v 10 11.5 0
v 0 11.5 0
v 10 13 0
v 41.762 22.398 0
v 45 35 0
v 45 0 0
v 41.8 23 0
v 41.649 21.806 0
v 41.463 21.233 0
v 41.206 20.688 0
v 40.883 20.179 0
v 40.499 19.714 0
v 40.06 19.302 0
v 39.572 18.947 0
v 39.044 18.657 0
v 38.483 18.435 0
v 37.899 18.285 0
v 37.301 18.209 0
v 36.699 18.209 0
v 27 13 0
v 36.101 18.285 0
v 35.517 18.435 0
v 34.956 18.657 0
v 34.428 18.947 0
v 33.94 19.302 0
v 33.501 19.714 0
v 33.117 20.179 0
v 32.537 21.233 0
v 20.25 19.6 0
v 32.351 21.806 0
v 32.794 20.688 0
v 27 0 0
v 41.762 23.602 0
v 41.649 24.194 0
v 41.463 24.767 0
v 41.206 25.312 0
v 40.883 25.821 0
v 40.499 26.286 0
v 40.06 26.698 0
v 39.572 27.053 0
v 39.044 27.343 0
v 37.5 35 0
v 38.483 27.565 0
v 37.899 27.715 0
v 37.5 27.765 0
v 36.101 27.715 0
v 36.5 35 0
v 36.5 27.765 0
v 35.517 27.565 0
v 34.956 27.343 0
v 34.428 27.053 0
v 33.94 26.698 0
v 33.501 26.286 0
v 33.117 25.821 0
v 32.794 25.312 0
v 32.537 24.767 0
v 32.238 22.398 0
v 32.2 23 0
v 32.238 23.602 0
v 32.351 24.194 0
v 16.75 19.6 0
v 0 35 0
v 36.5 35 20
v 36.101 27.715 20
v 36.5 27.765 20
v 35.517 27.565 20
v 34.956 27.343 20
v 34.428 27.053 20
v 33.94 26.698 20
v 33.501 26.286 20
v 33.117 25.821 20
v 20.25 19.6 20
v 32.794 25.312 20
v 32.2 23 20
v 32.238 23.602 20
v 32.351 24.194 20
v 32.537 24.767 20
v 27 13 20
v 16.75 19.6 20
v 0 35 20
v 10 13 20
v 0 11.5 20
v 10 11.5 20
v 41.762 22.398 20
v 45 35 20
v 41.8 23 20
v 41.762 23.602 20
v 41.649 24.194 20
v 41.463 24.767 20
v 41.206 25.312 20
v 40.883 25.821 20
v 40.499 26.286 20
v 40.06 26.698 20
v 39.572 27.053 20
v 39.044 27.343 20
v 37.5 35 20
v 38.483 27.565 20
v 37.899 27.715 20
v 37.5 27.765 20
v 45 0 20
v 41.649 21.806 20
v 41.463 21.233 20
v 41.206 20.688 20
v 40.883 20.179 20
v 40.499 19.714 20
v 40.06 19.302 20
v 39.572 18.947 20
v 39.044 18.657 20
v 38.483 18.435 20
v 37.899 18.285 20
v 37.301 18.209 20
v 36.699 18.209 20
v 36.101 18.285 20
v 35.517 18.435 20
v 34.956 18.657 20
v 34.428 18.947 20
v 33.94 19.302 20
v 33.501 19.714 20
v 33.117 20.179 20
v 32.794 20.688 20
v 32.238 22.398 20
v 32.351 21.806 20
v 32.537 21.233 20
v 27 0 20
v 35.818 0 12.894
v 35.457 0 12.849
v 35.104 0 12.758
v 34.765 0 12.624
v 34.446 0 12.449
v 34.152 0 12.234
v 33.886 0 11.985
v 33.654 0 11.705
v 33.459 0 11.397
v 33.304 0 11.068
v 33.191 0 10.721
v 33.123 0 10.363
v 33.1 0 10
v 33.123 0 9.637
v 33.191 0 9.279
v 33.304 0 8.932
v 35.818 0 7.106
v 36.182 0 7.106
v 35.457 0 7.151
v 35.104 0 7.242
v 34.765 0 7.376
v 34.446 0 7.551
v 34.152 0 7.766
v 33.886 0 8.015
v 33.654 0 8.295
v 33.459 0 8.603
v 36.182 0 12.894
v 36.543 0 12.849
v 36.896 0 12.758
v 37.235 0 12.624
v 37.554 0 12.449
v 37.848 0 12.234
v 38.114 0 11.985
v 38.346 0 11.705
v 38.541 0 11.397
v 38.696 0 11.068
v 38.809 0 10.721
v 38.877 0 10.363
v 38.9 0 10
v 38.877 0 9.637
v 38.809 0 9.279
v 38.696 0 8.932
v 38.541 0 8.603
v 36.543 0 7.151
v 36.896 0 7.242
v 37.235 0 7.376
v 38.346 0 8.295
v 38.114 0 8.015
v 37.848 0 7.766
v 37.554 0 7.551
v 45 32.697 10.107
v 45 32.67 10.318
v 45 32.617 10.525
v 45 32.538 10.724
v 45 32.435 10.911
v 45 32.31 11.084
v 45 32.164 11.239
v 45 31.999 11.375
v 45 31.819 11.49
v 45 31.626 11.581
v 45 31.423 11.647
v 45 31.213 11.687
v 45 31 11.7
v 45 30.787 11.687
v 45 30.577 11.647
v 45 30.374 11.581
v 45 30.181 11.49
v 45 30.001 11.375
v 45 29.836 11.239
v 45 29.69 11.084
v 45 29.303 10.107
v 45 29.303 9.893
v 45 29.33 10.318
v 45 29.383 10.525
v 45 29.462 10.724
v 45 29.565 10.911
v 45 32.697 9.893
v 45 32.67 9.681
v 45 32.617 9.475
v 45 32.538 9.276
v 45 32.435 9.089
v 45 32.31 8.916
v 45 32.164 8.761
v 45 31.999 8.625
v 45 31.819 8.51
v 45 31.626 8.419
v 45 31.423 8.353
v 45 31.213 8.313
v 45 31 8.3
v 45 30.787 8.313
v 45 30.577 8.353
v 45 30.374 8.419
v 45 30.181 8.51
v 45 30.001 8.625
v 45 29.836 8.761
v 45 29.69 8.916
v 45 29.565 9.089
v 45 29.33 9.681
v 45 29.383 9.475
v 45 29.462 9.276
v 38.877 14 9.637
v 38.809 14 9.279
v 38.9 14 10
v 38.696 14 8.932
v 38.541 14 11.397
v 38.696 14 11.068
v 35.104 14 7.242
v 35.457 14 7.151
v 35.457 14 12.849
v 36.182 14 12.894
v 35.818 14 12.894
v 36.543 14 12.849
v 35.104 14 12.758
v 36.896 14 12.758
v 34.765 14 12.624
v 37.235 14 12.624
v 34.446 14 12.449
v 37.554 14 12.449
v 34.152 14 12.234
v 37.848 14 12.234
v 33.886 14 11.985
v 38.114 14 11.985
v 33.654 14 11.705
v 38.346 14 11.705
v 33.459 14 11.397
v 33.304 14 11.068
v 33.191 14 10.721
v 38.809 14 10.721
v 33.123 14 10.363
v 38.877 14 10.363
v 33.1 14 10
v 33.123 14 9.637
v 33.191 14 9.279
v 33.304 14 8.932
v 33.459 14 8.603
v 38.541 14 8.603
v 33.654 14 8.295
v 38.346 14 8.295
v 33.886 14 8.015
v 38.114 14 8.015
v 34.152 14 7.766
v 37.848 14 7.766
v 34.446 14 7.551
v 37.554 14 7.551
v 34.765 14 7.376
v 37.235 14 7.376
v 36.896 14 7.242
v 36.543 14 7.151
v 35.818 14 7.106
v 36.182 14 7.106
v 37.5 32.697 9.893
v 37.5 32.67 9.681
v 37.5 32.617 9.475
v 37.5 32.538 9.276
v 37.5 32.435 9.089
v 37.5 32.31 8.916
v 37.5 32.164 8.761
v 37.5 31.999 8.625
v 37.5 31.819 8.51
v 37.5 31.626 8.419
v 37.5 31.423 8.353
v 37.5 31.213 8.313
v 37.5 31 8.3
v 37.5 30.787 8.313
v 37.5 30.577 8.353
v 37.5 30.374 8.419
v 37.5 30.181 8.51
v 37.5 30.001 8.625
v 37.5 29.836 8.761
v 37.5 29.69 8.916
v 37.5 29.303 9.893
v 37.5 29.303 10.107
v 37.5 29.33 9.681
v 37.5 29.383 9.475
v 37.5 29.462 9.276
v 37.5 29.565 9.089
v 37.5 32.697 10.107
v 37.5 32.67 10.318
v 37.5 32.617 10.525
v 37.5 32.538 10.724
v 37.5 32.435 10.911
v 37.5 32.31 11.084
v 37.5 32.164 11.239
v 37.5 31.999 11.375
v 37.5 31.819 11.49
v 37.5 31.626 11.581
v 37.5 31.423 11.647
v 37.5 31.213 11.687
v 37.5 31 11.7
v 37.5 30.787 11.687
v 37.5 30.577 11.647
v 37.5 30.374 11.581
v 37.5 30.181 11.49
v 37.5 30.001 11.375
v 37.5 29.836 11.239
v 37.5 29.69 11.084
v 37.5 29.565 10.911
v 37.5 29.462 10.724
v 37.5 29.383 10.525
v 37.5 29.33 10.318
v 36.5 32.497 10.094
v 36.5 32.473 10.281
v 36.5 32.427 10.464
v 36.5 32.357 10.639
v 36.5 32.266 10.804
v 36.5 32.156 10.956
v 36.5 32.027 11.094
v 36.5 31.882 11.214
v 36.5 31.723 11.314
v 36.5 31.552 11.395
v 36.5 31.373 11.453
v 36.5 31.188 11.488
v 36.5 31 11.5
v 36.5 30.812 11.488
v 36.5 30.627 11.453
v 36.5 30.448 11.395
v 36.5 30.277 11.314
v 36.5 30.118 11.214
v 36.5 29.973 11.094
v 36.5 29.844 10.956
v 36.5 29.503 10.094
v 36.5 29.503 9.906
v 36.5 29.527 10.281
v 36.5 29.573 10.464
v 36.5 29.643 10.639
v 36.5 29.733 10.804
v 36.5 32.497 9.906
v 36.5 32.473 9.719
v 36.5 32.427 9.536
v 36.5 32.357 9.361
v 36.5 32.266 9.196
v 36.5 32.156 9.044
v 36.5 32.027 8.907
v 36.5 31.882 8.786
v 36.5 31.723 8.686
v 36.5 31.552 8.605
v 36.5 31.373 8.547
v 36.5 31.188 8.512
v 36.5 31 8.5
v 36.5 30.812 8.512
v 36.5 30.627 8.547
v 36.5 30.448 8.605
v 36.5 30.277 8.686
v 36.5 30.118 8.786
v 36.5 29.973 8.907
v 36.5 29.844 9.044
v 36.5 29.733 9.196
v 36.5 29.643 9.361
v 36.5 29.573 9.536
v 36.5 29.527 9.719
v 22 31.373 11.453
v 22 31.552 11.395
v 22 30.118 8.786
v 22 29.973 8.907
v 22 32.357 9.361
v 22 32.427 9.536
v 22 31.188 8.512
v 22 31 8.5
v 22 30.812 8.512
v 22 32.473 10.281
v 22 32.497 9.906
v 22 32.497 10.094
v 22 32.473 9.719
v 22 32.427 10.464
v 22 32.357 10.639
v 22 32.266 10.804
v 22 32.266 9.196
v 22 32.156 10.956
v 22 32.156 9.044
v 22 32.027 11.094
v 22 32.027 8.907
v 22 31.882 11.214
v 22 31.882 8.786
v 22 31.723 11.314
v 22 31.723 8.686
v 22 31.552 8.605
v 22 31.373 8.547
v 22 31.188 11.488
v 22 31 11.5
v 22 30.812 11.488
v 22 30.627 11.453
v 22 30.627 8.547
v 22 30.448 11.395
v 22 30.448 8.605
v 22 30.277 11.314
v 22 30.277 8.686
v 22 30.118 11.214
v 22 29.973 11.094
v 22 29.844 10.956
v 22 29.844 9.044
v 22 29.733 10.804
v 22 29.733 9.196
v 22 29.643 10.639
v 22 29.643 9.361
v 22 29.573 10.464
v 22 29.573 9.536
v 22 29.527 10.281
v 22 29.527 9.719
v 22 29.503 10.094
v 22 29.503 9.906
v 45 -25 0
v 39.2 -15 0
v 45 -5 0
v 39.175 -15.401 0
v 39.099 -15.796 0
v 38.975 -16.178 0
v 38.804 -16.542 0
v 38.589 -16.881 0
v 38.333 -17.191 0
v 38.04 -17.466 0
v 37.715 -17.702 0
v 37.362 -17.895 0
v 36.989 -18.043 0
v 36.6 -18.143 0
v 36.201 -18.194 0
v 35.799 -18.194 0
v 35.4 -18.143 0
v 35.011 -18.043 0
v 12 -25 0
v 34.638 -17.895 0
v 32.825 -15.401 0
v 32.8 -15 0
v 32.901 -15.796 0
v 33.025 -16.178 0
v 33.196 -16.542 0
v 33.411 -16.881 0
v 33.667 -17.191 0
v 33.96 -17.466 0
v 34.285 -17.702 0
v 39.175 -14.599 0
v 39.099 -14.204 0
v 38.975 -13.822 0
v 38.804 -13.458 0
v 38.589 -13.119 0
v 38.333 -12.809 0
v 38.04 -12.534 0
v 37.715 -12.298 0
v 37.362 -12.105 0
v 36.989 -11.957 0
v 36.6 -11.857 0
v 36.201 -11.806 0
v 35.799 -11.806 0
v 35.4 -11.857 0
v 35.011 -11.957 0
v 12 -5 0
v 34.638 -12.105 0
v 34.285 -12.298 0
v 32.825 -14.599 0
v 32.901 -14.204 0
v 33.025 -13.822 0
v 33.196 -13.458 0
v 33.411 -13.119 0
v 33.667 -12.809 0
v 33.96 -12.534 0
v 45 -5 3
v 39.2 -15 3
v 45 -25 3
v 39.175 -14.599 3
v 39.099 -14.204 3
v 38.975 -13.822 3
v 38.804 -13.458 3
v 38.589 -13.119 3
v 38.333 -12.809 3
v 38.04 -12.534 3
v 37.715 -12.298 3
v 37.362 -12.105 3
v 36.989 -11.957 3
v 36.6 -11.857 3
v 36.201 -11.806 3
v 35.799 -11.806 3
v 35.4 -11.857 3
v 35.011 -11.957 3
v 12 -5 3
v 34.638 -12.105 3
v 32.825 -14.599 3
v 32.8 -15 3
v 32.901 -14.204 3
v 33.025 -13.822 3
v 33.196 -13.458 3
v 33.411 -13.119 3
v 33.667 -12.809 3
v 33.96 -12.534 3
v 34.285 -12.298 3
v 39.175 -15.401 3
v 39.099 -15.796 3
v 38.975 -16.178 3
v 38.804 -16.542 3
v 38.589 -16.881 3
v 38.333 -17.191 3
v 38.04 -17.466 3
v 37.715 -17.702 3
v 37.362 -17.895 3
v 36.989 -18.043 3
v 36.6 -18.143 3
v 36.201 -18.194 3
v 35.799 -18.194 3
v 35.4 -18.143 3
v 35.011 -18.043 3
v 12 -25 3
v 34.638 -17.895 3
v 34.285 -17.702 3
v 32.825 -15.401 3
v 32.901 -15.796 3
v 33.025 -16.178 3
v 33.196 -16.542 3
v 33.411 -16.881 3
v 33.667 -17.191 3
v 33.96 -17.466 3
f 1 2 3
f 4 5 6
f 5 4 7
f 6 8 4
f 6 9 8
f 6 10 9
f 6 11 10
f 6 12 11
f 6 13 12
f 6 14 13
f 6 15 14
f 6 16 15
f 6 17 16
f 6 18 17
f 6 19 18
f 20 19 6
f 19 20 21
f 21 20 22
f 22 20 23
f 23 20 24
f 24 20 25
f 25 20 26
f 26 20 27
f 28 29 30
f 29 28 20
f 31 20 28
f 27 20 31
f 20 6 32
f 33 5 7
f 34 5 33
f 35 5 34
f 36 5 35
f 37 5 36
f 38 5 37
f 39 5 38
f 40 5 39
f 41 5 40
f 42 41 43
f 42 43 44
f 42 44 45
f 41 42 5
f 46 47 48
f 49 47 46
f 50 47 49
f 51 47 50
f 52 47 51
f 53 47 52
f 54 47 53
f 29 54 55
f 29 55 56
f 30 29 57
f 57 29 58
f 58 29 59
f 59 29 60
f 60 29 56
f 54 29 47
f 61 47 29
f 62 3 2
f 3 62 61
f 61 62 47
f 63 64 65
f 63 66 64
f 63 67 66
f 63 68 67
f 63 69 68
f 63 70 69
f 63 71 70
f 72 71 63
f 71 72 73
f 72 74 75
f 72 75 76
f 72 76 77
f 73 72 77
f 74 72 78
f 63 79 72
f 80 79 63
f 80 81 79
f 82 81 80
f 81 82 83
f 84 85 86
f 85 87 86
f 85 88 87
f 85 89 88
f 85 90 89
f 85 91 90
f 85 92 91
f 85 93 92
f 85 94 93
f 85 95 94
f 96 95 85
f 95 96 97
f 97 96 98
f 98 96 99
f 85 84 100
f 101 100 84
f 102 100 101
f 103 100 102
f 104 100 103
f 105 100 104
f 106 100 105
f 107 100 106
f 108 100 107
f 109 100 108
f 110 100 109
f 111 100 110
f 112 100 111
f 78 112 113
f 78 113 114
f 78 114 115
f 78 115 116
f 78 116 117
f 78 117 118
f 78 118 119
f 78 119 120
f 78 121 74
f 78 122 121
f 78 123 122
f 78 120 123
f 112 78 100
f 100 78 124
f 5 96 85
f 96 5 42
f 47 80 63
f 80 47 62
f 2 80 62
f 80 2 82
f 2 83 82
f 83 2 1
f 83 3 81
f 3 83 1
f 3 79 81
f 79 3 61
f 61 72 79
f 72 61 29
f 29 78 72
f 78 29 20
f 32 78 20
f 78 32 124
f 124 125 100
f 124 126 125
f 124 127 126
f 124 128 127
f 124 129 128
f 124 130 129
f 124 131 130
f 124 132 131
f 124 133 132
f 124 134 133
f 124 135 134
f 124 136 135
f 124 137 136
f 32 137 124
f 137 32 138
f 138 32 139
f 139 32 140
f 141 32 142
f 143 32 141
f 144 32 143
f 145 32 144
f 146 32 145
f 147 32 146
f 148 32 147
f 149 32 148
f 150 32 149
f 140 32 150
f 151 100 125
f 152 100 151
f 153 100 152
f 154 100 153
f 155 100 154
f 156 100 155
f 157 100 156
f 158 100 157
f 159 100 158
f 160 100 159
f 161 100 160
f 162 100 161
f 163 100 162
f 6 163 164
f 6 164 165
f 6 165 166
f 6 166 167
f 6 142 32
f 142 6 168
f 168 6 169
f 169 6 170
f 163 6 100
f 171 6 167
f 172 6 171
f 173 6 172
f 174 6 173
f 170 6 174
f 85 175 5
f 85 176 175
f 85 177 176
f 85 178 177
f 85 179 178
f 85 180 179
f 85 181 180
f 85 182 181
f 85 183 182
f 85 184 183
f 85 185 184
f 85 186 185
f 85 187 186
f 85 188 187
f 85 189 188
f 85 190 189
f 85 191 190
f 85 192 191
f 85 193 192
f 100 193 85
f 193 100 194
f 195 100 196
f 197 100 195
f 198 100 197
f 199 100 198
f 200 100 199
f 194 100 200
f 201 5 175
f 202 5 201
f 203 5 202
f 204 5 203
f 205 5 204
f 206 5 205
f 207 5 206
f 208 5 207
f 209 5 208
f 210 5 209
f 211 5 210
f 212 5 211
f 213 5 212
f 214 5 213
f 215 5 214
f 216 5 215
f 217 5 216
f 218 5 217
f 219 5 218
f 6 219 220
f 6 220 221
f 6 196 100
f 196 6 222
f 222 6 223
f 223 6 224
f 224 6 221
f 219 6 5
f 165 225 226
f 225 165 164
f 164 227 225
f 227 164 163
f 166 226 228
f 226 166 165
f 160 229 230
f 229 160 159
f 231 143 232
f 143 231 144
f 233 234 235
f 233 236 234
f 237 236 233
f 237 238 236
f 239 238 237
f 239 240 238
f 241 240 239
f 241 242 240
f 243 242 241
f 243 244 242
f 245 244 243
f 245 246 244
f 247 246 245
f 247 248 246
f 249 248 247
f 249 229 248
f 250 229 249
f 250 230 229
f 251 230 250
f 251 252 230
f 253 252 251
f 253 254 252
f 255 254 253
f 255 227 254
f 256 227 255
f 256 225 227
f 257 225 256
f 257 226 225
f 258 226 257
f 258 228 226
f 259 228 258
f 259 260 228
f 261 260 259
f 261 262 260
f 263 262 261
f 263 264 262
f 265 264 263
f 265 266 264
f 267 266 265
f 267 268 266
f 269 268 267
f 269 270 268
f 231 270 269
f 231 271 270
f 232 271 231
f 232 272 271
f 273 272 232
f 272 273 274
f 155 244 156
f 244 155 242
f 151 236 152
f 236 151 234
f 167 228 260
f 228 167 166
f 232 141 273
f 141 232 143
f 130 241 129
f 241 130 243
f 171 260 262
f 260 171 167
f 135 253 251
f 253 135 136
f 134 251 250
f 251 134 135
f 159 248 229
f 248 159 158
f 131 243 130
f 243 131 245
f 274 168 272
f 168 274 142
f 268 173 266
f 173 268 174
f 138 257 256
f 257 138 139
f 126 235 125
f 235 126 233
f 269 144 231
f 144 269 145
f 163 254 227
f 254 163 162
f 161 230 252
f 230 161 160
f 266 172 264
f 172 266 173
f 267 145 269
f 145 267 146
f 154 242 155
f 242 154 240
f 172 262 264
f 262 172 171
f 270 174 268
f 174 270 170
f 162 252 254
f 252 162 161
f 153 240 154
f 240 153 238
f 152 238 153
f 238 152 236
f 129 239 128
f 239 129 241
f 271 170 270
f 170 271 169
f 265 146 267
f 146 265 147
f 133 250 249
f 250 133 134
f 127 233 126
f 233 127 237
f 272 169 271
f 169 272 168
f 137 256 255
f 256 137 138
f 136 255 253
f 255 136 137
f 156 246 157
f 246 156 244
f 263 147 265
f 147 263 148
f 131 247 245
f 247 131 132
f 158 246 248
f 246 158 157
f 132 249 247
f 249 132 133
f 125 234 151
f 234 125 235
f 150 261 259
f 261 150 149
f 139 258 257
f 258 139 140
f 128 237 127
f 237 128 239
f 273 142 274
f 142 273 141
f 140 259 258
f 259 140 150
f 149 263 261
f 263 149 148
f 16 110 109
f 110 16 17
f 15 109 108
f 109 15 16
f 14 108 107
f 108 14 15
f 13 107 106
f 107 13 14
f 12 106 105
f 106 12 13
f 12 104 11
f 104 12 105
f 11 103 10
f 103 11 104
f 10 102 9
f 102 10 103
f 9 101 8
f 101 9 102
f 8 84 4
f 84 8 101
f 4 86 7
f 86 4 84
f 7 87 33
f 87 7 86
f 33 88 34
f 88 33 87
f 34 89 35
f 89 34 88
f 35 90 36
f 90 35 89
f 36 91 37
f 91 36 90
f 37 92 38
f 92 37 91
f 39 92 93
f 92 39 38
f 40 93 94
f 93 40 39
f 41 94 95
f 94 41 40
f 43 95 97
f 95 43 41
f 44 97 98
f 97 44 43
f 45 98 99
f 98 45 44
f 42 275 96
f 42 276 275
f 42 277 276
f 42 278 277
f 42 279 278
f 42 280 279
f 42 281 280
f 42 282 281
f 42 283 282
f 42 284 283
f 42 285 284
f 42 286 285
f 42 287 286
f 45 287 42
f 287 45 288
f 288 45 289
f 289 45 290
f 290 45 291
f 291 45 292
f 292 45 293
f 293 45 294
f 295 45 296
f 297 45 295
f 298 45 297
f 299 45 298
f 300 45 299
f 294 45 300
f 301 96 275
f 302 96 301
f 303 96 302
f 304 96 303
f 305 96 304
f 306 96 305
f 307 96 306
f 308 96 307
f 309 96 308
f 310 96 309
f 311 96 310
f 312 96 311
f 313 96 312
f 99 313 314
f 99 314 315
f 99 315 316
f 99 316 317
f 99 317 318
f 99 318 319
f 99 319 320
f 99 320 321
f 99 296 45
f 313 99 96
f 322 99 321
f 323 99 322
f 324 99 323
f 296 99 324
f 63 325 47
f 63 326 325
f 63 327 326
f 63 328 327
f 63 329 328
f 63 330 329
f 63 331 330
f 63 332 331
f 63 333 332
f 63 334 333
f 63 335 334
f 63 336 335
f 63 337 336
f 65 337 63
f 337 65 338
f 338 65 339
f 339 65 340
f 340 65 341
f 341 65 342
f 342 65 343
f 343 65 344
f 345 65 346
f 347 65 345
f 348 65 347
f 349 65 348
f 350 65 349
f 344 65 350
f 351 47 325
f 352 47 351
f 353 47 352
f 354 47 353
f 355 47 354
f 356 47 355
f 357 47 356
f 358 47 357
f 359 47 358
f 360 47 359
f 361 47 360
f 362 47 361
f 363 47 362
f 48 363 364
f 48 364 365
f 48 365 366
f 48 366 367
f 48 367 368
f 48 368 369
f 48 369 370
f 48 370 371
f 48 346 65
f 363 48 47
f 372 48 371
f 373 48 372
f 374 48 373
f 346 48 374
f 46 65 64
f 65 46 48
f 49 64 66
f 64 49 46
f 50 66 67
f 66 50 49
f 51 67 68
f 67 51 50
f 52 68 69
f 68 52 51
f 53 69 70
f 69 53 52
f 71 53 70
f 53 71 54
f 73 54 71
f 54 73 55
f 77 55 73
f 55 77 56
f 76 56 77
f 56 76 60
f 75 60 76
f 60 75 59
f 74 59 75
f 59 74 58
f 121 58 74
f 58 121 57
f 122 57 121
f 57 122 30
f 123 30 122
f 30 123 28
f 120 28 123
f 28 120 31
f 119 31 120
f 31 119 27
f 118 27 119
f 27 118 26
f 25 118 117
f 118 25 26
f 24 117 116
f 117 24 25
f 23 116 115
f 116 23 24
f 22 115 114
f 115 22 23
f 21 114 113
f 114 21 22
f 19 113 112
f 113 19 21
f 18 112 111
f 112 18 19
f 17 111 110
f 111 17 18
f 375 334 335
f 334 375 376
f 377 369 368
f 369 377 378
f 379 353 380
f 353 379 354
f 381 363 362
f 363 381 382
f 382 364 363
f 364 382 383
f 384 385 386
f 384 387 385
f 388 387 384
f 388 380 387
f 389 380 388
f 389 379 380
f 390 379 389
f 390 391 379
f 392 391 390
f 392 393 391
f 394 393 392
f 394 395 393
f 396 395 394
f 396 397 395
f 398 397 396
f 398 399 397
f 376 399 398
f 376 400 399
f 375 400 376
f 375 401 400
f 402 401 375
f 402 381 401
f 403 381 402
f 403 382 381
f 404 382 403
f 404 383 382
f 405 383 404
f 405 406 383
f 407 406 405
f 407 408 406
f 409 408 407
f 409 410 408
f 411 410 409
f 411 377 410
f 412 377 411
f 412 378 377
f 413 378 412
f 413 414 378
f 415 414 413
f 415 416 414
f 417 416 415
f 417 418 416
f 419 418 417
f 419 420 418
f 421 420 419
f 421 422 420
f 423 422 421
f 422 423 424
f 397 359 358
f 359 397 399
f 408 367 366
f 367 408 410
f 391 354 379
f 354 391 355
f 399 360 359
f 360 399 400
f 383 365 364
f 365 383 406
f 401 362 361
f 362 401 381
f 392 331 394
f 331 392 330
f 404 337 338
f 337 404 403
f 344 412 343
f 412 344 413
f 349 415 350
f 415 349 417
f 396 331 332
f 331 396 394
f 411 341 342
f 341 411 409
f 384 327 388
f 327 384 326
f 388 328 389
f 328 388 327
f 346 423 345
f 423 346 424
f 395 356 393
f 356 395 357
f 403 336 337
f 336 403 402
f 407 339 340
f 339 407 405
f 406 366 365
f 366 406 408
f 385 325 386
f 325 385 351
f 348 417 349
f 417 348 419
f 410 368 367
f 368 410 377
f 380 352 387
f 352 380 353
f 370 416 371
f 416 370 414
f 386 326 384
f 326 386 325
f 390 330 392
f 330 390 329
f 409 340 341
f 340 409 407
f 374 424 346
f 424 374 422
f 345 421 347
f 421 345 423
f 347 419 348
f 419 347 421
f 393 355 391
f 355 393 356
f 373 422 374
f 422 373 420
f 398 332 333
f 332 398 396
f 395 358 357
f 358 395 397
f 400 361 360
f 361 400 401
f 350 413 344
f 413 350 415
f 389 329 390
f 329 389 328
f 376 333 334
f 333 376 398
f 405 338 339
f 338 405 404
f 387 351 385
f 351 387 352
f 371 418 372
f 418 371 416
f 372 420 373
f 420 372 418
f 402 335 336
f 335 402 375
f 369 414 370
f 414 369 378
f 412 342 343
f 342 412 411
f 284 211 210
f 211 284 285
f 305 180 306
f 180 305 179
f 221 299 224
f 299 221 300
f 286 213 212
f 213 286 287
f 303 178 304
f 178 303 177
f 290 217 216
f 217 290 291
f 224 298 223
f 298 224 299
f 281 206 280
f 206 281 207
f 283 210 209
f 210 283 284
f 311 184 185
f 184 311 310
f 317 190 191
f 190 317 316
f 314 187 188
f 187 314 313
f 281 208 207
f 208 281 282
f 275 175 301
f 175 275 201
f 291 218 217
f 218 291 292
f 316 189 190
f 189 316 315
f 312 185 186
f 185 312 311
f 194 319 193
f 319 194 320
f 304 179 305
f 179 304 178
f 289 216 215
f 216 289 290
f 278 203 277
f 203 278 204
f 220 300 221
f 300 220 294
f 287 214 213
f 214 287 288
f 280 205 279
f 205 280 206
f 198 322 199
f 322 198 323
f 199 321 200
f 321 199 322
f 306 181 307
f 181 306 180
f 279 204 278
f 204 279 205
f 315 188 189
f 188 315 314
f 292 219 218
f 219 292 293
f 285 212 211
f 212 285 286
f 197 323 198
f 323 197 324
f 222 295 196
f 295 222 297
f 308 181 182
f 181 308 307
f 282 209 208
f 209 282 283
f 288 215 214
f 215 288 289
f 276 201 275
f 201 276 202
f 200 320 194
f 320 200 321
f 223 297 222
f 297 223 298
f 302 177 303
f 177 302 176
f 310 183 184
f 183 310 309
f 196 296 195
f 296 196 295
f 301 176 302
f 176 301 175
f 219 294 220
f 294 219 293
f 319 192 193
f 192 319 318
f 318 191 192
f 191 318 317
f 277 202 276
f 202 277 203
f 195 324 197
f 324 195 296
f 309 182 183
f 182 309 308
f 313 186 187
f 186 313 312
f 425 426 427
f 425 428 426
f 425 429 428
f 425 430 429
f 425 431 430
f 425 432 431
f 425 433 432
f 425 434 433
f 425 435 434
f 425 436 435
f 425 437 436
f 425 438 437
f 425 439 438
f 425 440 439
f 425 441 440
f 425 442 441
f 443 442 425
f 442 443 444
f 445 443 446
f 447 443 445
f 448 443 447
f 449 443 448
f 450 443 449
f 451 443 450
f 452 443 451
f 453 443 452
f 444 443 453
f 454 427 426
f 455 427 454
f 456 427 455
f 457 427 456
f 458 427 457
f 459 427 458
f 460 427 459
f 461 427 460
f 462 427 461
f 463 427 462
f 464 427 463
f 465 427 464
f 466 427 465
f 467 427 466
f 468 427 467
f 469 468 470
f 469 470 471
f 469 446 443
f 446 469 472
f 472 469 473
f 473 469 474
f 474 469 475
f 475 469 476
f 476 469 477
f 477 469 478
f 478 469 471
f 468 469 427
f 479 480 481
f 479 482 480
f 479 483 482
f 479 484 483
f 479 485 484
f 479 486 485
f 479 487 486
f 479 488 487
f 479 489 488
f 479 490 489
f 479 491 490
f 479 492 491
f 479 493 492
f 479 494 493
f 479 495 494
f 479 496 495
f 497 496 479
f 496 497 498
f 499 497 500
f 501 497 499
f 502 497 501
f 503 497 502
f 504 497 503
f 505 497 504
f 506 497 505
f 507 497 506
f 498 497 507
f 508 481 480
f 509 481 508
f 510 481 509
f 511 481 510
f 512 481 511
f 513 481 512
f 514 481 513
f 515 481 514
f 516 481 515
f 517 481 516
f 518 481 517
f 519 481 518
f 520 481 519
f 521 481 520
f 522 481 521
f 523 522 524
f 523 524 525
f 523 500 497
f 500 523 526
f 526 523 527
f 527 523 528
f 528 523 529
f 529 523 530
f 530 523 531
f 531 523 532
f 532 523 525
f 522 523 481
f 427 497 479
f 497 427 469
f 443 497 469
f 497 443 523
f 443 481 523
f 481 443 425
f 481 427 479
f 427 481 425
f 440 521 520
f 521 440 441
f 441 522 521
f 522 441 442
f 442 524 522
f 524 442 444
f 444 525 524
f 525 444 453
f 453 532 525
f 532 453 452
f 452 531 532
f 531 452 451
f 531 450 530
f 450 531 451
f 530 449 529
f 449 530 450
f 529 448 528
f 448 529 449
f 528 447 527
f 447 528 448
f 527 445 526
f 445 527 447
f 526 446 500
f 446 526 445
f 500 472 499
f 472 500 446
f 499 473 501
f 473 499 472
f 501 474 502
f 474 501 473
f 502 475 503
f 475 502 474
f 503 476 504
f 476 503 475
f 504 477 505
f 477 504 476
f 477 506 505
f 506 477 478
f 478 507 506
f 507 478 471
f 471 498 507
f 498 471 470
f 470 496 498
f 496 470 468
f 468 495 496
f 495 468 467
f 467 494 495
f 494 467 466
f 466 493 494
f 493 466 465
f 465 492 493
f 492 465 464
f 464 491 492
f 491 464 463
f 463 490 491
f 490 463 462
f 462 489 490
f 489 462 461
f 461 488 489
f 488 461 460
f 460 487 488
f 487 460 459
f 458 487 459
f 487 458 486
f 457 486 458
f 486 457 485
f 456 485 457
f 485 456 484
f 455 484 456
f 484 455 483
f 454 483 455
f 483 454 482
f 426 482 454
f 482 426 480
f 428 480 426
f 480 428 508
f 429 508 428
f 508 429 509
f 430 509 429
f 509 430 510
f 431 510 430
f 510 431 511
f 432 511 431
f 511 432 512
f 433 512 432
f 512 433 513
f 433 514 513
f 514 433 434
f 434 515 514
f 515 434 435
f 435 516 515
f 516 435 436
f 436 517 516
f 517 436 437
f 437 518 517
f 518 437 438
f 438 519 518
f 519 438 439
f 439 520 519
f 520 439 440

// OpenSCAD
function v_slide_profile_points(x=0, y=0, lip=10) =
     let(v_width=17,
	 v_height=6.6,
	 v_plateau=3.5,
	 v_riselen=(v_width - v_plateau) / 2,
	 dropdown=13)
     [[x, y],
      [x + v_riselen, y + v_height],
      [x + v_riselen + v_plateau, y + v_height],
      [x + v_width, y],
      [x + v_width, y - dropdown],
      [x, y - dropdown],
      [x - lip, y - dropdown],
      [x - lip, y - 1.5],
      [x, y - 1.5]];



module v_slide_profile(x=0, y=0, lip=10) {
     polygon(v_slide_profile_points(x, y, lip));
}


module slide_block(width, depth, height) {
     difference() {
	  linear_extrude(width) {
	       difference() {
		    square([depth, height]);
		    translate([10, 13]) {
			 v_slide_profile(lip=11);
		    };
	       };
	  };

	  // m6 hole for clamp bottom
	  translate([depth - 9, -1, width/2]) {
	       rotate([-90, 0, 0]) {
		    cylinder(15, r=2.9, $fn=50);
	       };
	  };
     };
}


module block_clamp(width, depth, thick) {
     linear_extrude(thick) {
	  difference() {
	       translate([12, 0]) {
		    square([depth - 12, width]);
	       };
	       translate([depth - 9, width / 2]) {
		    circle(3.2, $fn=50);
	       };
	  }
     };
}


module gauge_slide_block(width, depth, height) {
     difference() {
	  slide_block(width, depth, height);

	  // gauge holder hole
	  translate([0, 0, -0.5]) {
	       linear_extrude(width + 1) {
		    translate([depth - 8, height - 12]) {
			 translate([-0.5, 0]) {
			      square([1, height]);
			 };
			 circle(r=9.6/2, $fn=50);
		    };
	       };
	  };

	  // m3 screw hole for gauge clamp
	  translate([depth - 23, height - 4, width / 2]) {
	       rotate([0, 90, 0]) {
		    cylinder(15, r=1.5, $fn=50);
	       };
	  };
	  translate([depth - 8, height - 4, width / 2]) {
	       rotate([0, 90, 0]) {
		    cylinder(9, r=1.7, $fn=50);
	       };
	  };

     };
}


gauge_slide_block(20, 45, 35);
translate([0, -25]) {
     block_clamp(20, 45, 3);
};


// The end.
